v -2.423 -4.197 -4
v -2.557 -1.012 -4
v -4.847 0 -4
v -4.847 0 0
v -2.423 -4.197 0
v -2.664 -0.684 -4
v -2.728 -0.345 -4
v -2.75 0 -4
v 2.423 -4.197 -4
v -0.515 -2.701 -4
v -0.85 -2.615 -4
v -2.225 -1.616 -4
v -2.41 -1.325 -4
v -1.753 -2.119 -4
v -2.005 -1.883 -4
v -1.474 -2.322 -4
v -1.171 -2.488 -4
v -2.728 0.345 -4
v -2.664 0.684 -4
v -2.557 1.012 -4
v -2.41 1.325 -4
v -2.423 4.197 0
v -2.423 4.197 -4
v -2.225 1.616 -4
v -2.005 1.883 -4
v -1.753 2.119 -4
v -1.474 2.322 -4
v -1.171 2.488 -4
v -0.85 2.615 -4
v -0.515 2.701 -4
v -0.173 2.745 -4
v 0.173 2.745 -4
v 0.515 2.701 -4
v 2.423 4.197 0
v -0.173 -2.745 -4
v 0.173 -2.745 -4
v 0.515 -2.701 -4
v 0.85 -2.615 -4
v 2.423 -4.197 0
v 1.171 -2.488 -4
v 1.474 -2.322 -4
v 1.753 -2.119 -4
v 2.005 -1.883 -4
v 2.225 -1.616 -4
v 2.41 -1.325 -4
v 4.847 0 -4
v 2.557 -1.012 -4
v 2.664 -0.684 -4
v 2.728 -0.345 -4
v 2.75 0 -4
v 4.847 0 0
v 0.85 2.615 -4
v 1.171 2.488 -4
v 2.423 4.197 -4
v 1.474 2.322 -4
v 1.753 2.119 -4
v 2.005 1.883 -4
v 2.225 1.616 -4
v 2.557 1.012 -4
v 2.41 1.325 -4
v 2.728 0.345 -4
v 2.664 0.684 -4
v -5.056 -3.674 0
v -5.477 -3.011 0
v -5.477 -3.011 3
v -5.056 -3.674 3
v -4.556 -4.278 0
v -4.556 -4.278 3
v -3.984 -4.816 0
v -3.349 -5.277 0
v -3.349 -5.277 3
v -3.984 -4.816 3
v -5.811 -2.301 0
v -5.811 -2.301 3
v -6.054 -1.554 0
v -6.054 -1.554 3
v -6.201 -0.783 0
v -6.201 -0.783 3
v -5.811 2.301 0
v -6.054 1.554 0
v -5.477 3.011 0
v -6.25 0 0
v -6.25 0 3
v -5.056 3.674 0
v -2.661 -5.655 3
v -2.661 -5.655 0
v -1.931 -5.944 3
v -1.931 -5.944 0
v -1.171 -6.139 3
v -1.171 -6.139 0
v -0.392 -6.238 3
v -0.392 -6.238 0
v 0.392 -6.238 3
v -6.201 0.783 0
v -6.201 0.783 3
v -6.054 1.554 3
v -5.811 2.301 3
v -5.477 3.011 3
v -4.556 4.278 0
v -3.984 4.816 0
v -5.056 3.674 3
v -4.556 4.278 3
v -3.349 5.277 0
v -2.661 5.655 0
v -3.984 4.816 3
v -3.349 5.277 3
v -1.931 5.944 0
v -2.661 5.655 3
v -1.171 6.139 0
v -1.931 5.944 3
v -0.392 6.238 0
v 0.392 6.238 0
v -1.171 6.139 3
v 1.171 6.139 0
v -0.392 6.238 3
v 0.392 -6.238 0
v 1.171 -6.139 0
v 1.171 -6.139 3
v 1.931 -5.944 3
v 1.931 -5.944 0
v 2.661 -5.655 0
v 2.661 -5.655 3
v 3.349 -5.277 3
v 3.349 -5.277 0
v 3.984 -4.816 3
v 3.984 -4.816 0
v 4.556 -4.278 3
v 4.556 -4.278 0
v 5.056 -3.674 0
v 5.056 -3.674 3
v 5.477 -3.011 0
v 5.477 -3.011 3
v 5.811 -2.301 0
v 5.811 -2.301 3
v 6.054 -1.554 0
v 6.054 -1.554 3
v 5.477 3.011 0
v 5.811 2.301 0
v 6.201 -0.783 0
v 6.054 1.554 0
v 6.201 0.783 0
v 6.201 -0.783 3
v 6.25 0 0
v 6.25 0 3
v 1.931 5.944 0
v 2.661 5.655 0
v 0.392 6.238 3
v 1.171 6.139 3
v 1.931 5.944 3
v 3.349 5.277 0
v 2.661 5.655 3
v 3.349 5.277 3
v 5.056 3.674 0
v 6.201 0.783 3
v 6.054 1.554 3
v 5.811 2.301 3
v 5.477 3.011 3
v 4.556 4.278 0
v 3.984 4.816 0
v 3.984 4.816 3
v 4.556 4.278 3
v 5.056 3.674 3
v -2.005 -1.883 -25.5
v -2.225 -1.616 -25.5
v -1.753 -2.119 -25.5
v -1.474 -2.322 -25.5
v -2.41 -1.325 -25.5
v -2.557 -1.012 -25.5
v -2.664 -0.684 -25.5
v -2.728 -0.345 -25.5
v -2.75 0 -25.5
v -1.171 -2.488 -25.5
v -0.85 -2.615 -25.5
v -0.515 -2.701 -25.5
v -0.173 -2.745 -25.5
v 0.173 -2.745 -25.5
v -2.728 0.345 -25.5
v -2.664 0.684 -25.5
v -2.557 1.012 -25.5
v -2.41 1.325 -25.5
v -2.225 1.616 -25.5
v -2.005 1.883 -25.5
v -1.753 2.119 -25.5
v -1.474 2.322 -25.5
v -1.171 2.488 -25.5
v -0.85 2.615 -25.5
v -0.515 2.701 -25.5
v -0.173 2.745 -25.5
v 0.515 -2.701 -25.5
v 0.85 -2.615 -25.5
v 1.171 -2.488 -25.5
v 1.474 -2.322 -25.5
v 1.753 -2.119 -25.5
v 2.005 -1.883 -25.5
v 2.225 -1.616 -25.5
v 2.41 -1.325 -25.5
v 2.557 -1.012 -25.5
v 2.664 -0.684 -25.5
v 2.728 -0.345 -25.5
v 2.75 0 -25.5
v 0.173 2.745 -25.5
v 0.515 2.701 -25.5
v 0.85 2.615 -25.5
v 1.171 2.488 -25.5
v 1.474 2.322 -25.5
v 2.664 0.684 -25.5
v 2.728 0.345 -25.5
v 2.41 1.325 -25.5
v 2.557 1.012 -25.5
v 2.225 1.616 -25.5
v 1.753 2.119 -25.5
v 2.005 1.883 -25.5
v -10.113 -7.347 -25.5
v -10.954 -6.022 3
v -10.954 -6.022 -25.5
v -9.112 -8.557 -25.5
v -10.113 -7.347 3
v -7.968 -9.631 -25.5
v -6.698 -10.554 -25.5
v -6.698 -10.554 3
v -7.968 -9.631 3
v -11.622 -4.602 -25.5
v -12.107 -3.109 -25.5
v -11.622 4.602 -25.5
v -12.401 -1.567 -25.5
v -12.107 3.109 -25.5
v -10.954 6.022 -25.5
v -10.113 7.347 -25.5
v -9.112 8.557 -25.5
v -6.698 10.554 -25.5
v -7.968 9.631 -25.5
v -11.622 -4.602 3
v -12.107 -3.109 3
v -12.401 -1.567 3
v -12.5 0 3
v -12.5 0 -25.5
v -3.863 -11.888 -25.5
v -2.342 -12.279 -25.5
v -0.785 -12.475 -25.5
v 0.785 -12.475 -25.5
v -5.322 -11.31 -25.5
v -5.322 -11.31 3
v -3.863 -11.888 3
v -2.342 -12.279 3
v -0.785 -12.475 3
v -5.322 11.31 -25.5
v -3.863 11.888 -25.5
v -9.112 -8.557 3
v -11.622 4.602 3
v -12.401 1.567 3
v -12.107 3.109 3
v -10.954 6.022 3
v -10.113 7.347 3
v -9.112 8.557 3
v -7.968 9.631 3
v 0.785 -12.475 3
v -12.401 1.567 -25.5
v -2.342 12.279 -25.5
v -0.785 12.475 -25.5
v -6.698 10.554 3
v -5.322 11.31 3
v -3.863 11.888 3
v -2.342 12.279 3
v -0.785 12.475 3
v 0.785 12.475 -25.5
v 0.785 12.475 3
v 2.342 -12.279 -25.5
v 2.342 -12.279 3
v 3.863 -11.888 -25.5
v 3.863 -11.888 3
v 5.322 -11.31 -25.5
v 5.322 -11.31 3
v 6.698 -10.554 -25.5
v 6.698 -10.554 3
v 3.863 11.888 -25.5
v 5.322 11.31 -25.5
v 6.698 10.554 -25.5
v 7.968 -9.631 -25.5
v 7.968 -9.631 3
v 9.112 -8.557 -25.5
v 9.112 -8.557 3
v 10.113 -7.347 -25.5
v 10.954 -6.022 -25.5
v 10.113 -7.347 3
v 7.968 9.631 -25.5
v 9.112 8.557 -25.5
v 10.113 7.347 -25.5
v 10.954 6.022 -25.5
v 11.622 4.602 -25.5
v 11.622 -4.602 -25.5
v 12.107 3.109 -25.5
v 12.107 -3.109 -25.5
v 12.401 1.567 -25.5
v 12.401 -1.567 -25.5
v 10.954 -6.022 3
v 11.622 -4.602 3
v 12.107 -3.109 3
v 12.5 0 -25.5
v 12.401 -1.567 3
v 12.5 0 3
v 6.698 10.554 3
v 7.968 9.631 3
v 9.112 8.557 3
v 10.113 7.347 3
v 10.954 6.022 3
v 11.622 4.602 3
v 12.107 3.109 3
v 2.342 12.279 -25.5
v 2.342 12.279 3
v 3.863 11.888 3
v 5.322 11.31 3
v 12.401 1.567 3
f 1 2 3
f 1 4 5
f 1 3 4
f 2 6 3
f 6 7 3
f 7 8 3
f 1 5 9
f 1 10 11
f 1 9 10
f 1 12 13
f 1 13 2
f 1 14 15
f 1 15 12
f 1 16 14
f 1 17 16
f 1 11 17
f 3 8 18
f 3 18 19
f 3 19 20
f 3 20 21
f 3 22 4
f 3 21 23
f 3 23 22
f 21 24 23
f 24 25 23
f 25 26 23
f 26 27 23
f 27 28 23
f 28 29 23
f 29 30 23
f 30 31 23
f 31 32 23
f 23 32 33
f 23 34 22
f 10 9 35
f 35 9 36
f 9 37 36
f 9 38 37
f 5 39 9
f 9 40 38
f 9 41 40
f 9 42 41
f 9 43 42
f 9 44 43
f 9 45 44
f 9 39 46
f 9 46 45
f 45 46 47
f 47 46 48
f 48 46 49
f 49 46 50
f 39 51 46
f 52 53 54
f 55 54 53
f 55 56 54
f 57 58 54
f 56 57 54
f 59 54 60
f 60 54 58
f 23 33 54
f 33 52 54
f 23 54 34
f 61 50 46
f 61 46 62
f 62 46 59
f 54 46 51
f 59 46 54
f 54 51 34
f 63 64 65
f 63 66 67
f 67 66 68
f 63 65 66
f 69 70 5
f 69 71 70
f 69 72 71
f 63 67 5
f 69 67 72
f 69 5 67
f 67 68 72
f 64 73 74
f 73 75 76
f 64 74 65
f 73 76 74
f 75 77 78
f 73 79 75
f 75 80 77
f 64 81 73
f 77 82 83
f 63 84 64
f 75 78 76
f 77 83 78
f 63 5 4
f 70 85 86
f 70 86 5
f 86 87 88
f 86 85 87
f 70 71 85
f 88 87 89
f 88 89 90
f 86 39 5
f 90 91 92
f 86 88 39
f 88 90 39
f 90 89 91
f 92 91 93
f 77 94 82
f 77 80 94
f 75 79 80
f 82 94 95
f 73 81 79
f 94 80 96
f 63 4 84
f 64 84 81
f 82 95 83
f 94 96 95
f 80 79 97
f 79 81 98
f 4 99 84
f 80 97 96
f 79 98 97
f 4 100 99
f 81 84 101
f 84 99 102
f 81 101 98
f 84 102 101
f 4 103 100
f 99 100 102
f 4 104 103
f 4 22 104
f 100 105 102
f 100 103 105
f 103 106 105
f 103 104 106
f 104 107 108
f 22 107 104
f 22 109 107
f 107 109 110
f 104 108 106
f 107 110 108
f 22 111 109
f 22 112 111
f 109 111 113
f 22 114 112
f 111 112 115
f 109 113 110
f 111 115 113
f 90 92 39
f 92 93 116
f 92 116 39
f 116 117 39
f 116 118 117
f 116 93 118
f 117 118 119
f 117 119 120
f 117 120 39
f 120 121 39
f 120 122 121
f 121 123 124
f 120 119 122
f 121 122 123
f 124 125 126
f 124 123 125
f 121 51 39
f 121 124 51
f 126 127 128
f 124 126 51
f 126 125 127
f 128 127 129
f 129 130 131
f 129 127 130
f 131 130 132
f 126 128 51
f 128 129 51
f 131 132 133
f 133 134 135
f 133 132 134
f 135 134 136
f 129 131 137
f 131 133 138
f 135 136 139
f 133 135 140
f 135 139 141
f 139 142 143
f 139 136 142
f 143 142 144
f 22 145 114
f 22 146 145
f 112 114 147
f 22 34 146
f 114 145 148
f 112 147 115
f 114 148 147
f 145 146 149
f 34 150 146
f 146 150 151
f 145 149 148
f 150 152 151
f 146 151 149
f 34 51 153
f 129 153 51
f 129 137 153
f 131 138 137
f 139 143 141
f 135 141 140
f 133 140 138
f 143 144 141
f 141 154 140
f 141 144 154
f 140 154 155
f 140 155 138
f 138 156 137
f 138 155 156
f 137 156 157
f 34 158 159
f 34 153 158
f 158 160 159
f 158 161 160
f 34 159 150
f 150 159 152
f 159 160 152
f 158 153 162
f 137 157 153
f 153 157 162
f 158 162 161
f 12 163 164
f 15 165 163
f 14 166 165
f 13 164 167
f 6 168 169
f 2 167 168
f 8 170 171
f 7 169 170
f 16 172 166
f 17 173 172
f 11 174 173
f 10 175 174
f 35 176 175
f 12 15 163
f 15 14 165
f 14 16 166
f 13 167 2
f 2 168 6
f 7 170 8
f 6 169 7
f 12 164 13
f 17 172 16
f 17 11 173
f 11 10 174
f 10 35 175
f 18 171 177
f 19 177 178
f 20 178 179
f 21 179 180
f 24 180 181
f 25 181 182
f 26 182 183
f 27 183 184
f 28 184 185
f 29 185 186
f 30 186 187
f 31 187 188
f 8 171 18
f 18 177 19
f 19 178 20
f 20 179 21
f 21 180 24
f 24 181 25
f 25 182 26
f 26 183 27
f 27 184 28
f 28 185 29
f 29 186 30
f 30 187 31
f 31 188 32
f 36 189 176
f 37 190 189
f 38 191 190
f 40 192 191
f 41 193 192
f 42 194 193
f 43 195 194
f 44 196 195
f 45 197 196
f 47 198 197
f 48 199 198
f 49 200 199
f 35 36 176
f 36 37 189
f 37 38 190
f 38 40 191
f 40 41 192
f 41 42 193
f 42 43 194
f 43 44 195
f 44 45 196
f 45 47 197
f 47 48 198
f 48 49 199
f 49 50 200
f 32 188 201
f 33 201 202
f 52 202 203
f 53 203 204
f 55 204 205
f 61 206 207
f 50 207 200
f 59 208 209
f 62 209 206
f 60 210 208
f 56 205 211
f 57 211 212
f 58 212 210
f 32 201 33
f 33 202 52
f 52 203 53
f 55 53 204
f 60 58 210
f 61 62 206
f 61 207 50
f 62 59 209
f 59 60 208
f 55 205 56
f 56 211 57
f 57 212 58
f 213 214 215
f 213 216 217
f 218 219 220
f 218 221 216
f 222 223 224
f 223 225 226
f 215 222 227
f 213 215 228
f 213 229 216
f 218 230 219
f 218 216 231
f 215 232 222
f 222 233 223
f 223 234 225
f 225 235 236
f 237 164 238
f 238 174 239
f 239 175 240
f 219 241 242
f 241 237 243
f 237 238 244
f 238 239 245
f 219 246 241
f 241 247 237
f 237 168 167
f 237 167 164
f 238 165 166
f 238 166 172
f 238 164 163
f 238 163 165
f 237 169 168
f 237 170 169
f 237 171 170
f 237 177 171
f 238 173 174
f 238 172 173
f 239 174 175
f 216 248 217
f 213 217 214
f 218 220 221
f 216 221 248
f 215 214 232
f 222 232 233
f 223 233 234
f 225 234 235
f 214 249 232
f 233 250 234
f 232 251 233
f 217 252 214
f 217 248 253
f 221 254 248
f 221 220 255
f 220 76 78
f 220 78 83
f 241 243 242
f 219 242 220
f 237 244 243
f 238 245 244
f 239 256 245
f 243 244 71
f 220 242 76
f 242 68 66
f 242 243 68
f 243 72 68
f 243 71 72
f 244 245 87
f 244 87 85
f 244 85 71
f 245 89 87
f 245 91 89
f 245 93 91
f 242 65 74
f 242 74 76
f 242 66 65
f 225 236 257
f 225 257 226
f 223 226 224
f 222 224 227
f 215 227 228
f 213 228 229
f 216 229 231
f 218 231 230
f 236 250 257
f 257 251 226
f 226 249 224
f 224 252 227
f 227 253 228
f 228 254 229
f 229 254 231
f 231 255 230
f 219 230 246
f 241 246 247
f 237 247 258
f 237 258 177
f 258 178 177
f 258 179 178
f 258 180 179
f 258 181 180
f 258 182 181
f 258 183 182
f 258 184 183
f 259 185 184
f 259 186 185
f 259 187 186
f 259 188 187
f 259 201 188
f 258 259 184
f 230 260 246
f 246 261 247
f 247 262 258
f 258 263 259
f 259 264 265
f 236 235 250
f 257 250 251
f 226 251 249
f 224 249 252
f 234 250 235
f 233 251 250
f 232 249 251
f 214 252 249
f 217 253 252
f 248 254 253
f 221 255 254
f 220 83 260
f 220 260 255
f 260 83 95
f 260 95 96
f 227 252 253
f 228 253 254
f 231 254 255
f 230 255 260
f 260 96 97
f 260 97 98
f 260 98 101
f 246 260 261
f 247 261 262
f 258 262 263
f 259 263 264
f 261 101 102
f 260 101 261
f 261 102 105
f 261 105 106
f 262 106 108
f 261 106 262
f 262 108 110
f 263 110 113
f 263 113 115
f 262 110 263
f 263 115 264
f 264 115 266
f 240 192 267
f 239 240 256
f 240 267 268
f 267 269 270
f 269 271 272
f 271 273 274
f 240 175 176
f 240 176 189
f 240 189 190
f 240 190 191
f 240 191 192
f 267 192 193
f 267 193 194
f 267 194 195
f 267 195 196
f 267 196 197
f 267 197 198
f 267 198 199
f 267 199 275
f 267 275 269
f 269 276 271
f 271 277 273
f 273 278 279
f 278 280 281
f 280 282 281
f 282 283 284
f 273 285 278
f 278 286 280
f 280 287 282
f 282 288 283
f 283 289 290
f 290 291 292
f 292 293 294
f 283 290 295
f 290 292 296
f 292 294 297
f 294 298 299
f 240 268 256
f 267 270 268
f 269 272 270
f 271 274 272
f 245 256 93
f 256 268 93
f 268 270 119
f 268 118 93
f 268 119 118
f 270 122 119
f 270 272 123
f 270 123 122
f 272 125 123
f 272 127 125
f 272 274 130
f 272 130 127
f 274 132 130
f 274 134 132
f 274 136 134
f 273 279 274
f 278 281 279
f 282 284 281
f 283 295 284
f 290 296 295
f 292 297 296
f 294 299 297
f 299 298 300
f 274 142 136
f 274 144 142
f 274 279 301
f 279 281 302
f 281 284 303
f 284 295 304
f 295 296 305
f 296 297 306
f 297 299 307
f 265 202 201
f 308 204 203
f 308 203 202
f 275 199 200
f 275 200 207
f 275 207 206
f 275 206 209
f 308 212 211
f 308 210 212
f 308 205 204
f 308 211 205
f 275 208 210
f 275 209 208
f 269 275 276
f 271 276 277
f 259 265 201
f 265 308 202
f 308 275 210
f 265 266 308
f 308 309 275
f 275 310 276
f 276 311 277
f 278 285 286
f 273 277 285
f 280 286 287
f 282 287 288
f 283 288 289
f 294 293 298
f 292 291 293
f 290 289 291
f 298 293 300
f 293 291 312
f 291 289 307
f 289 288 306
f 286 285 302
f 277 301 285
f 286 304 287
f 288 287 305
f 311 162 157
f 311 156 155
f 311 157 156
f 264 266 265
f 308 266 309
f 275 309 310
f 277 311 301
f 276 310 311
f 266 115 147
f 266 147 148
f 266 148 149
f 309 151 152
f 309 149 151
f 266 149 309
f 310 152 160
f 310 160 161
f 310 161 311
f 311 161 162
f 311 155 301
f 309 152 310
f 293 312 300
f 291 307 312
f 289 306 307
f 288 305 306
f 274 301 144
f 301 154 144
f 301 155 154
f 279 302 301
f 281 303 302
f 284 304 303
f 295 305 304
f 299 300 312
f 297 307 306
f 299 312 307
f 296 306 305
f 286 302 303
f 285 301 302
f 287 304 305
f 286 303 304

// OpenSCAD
$fn = 50;

difference() {
	union() {
		translate(v = [0, 0, -25.5]) {
			cylinder(h = 28.5, r = 12.5);
		}
	}
	union() {
		translate(v = [0, 0, 0]) {
			rotate(a = [0, 0, 0]) {
				difference() {
					union() {
						translate(v = [0, 0, -4]) {
							linear_extrude(height = 4) {
								polygon(points = [[4.8468, 0.0], [2.4234000000000004, 4.197451927062417], [-2.423399999999999, 4.197451927062417], [-4.8468, 5.935618106107392e-16], [-2.423400000000002, -4.197451927062416], [2.423399999999997, -4.197451927062419]]);
							}
						}
					}
					union();
				}
			}
		}
		#cylinder(h = 3, r = 6.25);
		#translate(v = [0, 0, -100.0]) {
			cylinder(h = 200, r = 2.75);
		}
	}
}
